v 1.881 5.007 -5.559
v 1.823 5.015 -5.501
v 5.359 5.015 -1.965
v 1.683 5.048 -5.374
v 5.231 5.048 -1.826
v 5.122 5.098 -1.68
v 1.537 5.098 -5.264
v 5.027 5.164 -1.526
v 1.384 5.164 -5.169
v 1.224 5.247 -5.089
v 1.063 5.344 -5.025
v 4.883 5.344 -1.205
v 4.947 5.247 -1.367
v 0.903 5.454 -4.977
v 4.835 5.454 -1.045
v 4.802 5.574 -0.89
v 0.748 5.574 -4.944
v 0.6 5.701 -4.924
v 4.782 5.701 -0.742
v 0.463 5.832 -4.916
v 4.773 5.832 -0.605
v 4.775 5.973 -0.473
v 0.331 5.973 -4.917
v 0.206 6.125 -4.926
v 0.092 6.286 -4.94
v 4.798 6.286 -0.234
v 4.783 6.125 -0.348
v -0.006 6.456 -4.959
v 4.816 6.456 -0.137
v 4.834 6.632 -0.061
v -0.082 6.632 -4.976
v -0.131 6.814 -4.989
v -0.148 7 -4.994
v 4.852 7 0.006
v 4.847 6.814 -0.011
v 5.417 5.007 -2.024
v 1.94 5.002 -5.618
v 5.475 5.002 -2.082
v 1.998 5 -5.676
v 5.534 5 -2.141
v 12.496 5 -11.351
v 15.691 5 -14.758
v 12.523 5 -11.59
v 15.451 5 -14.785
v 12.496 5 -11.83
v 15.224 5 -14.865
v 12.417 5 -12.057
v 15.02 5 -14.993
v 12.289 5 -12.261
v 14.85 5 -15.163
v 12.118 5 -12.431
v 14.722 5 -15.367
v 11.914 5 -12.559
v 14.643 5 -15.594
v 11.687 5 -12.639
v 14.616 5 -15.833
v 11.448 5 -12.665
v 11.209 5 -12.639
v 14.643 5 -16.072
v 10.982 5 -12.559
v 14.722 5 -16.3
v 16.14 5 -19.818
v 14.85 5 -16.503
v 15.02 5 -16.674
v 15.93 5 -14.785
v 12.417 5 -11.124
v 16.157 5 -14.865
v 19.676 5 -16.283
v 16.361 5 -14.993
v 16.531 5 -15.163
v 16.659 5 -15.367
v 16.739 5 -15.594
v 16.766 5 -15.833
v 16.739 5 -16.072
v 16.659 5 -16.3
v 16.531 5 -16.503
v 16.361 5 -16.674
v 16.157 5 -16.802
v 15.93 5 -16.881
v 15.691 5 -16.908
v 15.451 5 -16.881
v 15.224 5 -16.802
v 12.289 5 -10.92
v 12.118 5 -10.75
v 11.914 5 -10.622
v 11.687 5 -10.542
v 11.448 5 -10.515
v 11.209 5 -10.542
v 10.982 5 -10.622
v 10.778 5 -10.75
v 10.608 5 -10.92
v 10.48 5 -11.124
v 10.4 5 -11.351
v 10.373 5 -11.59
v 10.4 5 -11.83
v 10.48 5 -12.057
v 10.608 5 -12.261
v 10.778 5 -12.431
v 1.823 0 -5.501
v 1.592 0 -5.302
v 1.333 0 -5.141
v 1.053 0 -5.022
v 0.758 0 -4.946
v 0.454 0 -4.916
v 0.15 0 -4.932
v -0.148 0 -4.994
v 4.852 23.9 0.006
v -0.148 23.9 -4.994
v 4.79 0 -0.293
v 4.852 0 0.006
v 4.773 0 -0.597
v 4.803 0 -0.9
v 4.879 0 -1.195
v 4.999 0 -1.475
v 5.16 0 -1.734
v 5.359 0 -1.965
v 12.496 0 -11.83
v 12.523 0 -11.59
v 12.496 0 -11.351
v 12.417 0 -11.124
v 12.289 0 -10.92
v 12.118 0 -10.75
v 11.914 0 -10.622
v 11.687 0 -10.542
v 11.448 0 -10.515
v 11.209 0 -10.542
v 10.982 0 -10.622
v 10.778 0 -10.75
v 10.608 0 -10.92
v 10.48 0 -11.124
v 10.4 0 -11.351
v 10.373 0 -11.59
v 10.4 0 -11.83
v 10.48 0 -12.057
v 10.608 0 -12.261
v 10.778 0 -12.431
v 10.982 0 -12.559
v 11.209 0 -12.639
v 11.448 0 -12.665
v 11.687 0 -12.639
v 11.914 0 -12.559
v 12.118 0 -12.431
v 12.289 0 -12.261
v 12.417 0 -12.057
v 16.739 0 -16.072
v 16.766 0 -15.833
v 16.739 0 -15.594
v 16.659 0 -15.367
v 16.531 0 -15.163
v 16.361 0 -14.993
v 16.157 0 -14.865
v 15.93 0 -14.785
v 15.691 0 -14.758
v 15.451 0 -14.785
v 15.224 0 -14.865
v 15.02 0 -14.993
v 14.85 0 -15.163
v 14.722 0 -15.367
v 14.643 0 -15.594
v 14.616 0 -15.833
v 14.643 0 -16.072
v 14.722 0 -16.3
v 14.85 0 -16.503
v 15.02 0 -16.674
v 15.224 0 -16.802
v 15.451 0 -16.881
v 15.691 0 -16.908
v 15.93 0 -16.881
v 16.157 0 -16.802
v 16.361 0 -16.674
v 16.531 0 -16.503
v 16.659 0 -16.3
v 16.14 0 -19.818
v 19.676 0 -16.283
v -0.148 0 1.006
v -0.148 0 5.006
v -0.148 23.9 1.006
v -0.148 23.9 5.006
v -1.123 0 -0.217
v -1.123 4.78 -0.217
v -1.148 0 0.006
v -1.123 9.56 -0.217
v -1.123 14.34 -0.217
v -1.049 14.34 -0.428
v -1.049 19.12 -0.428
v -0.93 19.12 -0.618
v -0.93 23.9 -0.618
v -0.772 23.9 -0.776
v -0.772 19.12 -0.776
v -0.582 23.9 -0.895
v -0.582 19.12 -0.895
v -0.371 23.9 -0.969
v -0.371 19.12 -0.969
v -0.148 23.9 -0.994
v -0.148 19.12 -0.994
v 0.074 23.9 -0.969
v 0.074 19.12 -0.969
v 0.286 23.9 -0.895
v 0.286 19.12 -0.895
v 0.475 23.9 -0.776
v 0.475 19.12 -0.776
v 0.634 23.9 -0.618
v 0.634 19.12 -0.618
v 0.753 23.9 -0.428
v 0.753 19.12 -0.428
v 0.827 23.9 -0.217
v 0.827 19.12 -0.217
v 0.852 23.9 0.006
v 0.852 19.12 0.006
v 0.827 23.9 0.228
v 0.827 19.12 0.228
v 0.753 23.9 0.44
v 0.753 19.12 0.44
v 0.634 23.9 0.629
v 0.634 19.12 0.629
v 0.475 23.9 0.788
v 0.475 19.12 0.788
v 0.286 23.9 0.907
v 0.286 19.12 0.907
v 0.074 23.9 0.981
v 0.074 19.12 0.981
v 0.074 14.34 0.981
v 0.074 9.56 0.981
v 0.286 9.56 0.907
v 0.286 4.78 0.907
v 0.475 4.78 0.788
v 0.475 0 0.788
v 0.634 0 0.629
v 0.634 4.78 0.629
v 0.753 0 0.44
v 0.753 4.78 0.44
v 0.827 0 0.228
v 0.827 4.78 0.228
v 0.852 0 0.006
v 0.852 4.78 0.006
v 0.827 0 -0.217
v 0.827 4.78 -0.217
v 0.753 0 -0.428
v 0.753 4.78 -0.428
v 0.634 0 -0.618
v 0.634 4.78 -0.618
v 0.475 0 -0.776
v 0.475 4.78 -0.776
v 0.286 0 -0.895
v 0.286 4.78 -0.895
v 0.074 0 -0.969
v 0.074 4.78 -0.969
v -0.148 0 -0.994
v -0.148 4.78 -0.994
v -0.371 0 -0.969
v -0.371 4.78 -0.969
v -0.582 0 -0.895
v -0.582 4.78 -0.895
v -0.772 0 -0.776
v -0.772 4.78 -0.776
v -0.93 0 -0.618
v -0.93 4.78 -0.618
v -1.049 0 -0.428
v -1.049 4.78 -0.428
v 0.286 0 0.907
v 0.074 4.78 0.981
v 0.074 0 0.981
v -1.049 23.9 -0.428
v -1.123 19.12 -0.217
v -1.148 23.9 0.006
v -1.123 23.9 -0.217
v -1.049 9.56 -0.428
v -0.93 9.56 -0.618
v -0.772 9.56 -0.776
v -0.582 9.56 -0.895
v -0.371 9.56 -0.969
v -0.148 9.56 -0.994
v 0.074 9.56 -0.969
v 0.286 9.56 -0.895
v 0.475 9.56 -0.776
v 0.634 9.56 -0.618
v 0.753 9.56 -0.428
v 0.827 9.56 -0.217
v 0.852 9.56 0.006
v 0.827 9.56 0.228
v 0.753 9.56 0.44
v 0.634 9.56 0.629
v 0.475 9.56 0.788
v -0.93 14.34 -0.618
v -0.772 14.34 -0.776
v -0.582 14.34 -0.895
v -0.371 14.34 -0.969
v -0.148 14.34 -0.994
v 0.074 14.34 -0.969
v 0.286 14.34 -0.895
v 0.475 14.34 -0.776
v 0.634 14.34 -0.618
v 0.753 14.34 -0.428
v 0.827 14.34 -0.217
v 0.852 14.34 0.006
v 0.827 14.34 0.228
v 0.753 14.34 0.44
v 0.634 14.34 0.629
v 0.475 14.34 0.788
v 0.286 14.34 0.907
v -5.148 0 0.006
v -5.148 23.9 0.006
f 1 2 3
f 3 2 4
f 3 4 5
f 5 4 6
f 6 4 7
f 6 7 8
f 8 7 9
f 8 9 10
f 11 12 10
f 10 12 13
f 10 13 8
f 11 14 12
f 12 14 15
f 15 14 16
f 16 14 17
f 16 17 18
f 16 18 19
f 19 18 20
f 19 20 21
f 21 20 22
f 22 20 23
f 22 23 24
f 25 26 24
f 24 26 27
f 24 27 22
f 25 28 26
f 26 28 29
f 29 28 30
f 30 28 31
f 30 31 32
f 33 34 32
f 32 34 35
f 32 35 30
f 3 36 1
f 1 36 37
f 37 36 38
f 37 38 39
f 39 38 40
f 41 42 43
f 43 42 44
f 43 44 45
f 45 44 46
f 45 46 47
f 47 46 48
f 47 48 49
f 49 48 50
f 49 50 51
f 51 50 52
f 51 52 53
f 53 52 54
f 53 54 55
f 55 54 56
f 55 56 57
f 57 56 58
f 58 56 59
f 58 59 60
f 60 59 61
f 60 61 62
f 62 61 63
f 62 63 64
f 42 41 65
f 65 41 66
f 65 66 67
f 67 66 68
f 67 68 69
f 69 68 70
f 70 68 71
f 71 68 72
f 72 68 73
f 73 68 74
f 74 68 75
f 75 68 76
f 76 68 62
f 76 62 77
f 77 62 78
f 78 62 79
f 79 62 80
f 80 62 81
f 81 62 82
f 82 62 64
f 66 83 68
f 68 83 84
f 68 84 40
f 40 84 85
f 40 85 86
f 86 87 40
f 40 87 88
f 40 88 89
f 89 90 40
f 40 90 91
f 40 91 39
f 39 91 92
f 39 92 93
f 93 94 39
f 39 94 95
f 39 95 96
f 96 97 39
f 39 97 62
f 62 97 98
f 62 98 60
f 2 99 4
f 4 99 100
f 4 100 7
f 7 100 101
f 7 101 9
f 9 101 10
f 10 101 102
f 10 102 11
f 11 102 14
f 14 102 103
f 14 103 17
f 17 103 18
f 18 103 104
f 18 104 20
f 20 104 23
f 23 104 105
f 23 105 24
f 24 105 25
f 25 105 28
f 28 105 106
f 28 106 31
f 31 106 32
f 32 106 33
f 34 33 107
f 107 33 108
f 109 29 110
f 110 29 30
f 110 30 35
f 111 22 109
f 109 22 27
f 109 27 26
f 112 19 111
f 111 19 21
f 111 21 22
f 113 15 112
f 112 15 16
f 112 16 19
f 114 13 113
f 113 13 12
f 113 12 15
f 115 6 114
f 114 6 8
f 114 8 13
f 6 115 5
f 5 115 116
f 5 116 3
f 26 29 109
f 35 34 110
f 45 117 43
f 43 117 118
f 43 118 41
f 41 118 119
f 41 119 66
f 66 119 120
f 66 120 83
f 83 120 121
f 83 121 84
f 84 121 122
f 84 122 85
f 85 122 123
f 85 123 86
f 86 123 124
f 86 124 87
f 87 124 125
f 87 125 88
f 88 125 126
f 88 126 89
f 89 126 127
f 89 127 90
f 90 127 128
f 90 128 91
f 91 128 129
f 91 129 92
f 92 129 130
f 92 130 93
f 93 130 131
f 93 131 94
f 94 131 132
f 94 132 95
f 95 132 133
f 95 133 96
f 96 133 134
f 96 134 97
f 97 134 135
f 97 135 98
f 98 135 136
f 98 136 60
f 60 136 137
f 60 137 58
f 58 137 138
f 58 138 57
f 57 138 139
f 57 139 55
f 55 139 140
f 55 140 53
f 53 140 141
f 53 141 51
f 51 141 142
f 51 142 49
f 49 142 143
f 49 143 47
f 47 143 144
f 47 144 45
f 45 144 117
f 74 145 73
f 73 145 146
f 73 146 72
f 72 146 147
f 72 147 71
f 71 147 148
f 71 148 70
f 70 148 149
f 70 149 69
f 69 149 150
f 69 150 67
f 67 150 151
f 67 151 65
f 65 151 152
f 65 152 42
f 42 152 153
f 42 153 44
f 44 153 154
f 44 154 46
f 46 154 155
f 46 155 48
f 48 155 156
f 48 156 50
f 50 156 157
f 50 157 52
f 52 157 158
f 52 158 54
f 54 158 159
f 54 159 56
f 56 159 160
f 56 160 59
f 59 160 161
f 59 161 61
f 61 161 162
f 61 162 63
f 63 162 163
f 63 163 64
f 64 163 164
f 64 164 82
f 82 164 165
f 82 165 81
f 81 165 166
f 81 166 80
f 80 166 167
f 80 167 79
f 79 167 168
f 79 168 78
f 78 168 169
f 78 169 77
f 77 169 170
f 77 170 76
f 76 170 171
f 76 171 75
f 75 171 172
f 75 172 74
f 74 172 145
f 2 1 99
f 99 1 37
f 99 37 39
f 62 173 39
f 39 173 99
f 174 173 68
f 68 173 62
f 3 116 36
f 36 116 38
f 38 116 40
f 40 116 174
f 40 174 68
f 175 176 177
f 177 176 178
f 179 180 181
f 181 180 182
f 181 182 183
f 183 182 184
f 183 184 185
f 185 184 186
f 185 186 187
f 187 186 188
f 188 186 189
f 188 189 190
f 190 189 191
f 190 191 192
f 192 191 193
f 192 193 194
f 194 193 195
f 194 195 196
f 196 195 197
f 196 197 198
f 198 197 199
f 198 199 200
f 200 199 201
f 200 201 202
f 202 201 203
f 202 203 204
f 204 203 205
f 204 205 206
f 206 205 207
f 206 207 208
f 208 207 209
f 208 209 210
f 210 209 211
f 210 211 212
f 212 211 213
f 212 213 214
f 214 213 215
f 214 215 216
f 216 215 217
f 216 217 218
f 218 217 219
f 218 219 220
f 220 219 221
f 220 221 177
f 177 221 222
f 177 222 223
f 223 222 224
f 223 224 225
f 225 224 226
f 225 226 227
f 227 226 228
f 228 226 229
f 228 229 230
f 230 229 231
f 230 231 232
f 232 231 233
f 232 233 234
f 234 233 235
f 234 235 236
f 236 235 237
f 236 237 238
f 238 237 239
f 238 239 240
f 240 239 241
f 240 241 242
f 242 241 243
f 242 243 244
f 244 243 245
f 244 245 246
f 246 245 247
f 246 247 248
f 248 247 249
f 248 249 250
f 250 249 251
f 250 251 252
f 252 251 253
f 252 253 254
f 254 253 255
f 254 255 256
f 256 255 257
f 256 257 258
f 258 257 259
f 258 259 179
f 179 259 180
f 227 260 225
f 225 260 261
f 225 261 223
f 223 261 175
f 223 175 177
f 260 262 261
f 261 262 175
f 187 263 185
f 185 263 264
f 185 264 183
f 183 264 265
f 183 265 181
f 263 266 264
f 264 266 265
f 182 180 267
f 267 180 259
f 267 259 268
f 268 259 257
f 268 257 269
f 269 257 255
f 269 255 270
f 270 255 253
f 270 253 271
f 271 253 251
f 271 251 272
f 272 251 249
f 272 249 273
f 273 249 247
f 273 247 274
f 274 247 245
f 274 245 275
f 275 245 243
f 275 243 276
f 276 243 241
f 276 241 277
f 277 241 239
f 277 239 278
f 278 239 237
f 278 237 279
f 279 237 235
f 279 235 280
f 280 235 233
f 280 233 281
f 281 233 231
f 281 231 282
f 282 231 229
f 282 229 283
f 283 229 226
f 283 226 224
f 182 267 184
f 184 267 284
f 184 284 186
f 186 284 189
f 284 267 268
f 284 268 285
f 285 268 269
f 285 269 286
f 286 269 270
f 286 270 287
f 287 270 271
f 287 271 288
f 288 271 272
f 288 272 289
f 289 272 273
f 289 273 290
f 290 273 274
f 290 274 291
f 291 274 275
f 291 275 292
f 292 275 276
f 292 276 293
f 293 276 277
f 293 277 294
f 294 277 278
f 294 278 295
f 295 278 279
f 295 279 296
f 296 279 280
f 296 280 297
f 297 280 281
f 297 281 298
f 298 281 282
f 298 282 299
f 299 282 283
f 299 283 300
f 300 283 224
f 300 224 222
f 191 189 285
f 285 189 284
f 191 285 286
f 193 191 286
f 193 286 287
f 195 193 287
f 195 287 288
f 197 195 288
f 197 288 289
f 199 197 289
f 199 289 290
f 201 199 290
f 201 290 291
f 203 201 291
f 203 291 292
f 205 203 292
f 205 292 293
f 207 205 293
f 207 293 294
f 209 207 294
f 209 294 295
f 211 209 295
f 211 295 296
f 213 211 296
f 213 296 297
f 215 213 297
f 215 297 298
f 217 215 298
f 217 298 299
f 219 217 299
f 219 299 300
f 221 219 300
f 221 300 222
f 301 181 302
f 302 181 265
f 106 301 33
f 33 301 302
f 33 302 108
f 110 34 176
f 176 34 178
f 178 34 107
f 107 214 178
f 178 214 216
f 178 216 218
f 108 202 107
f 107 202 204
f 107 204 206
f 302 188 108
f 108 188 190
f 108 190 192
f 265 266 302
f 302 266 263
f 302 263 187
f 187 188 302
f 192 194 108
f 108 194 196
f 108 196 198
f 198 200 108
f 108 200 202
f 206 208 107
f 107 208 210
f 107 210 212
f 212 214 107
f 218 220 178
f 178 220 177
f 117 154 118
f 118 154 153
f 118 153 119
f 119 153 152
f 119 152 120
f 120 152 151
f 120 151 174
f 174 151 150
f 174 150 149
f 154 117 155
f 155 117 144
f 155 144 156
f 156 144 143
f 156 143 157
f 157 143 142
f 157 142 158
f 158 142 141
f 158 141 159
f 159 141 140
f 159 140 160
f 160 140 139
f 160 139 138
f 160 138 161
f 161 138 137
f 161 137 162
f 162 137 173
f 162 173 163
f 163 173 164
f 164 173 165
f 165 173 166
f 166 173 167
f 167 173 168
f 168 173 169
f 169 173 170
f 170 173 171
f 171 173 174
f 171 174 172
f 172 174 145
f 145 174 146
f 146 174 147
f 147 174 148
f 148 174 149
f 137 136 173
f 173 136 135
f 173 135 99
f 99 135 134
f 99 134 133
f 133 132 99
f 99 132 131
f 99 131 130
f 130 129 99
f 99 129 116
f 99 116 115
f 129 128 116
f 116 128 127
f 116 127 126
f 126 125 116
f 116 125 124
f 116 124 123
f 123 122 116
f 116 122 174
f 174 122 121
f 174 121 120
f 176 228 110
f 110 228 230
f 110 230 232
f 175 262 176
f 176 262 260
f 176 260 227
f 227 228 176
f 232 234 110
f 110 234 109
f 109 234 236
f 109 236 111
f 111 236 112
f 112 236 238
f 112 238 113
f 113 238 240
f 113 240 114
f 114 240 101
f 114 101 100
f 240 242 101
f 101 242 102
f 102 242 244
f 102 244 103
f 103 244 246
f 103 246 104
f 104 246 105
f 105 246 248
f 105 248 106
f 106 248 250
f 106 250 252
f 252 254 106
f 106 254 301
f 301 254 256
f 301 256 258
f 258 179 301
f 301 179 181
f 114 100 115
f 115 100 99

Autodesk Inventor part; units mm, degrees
ref_plane "YZ Plane" through (0, 0, 0) normal (1, 0, 0) x (0, 1, 0)
ref_plane "XZ Plane" through (0, 0, 0) normal (0, 1, 0) x (-1, 0, 0)
ref_plane "XY Plane" through (0, 0, 0) normal (0, 0, 1) x (1, 0, 0)
sketch "Sketch1" plane through (0, 0, 0) normal (0, 1, 0) x (-1, 0, 0)
  arc A0 (-0.158902, 2.527129) -> (-1.647898, 1.801809) centre (0.148153, 0.005757) ccw
  arc A1 (-0.158902, 2.527129) -> (-1.647898, 1.801809) centre (0.148153, 0.005757) ccw
  arc A2 (1.944204, -1.790294) -> (2.669525, -0.301298) centre (0.148153, 0.005757) ccw
  arc A3 (1.944204, -1.790294) -> (2.669525, -0.301298) centre (0.148153, 0.005757) ccw
  arc A4 (0.148153, 2.545757) -> (-1.647898, 1.801809) centre (0.148153, 0.005757) ccw
  line L0 (0.148153, 5.005757) -> (0.148153, 2.545757)
  line L1 (0.148153, 0.005757) -> (2.688153, 0.005757)
  line L2 (-1.647898, 1.801809) -> (-4.147898, -0.698191)
  arc A5 (1.944204, -1.790294) -> (2.688153, 0.005757) centre (0.148153, 0.005757) ccw
  line L3 (-4.147898, -0.698191) -> (-4.851847, 0.005757)
  arc A6 (0.148153, 2.545757) -> (-1.647898, 1.801809) centre (0.148153, 0.005757) ccw
  arc A7 (0.148153, 2.545757) -> (-1.647898, 1.801809) centre (0.148153, 0.005757) ccw
  arc A8 (-0.158902, 2.527129) -> (-1.647898, 1.801809) centre (0.148153, 0.005757) ccw
  arc A9 (-0.158902, 2.527129) -> (-1.647898, 1.801809) centre (0.148153, 0.005757) ccw
  line L4 (-4.851847, 0.005757) -> (0.148153, 5.005757)
  line L5 (-4.851847, 0.005757) -> (0.148153, 5.005757)
  line L6 (0.148153, 5.005757) -> (0.148153, 2.545757)
  arc A10 (0.148153, 2.545757) -> (-1.647898, 1.801809) centre (0.148153, 0.005757) ccw
  line L7 (-1.647898, 1.801809) -> (-4.147898, -0.698191)
  line L8 (-4.147898, -0.698191) -> (-4.851847, 0.005757)
  arc A11 (1.944204, -1.790294) -> (2.688153, 0.005757) centre (0.148153, 0.005757) ccw
  arc A12 (1.944204, -1.790294) -> (2.669525, -0.301298) centre (0.148153, 0.005757) ccw
  arc A13 (1.944204, -1.790294) -> (2.669525, -0.301298) centre (0.148153, 0.005757) ccw
  arc A14 (1.944204, -1.790294) -> (2.688153, 0.005757) centre (0.148153, 0.005757) ccw
  line L9 (-4.147898, -0.698191) -> (-0.555796, -4.290294)
  line L10 (0.148153, 1.005757) -> (0.148153, 0.005757)
  line L11 (0.148153, 1.005757) -> (0.148153, 0.005757)
  line L12 (0.148153, 2.545757) -> (0.148153, 0.005757)
  line L13 (0.148153, 5.005757) -> (0.148153, 2.545757)
  line L14 (0.148153, 5.005757) -> (0.148153, 1.005757)
  line L15 (0.148153, 0.005757) -> (1.148153, 0.005757)
  line L16 (1.148153, 0.005757) -> (5.148153, 0.005757)
  line L17 (2.688153, 0.005757) -> (5.148153, 0.005757)
  line L18 (0.148153, 0.005757) -> (2.688153, 0.005757)
  line L19 (5.148153, 0.005757) -> (0.148153, -4.994243)
  line L20 (0.148153, -4.994243) -> (5.148153, 0.005757)
  line L21 (-4.147898, -0.698191) -> (-4.851847, 0.005757)
  line L22 (-4.147898, -0.698191) -> (-0.555796, -4.290294)
  line L23 (0.148153, -4.994243) -> (-0.555796, -4.290294)
  line L24 (-4.851847, 0.005757) -> (0.148153, -4.994243)
  line L25 (-4.851847, 0.005757) -> (0.148153, -4.994243)
  line L26 (0.148153, 5.005757) -> (-4.851847, 0.005757)
  line L27 (-4.851847, 0.005757) -> (0.148153, 5.005757)
  line L28 (0.148153, 5.005757) -> (-4.851847, 0.005757)
  line L29 (0.148153, -4.994243) -> (-0.555796, -4.290294)
  arc A15 (1.944204, -1.790294) -> (2.688153, 0.005757) centre (0.148153, 0.005757) ccw
  line L30 (-0.555796, -4.290294) -> (1.944204, -1.790294)
  line L31 (2.688153, 0.005757) -> (5.148153, 0.005757)
  line L32 (5.148153, 0.005757) -> (0.148153, -4.994243)
  line L33 (0.148153, -4.994243) -> (-0.555796, -4.290294)
  line L34 (-0.555796, -4.290294) -> (1.944204, -1.790294)
  arc A16 (1.944204, -1.790294) -> (2.688153, 0.005757) centre (0.148153, 0.005757) ccw
  line L35 (2.688153, 0.005757) -> (5.148153, 0.005757)
  line L36 (5.148153, 0.005757) -> (0.148153, -4.994243)
  arc A17 (0.148153, 2.545757) -> (-1.647898, 1.801809) centre (0.148153, 0.005757) ccw
  circle A18 centre (-2.355005, -2.497401) radius 1.5
  circle A19 centre (-2.355005, -2.497401) radius 1.5
  circle A20 centre (-2.355005, -2.497401) radius 1.5
  circle A21 centre (-2.355005, -2.497401) radius 1.5
  circle A22 centre (-2.355005, -2.497401) radius 1.5
  line L37 (0.148153, 5.005757) -> (0.148153, 1.005757)
  arc A23 (0.148153, 1.005757) -> (1.148153, 0.005757) centre (0.148153, 0.005757) ccw
  line L38 (0.148153, -4.994243) -> (5.148153, 0.005757)
  line L39 (1.148153, 0.005757) -> (5.148153, 0.005757)
  line L40 (0.148153, 0.005757) -> (1.148153, 0.005757)
  arc A24 (0.148153, 1.005757) -> (1.148153, 0.005757) centre (0.148153, 0.005757) ccw
  line L41 (0.148153, 0.005757) -> (1.148153, 0.005757)
  line L42 (0.148153, 1.005757) -> (0.148153, 0.005757)
  arc A25 (0.148153, 1.005757) -> (1.148153, 0.005757) centre (0.148153, 0.005757) ccw
  arc A26 (0.148153, 1.005757) -> (1.148153, 0.005757) centre (0.148153, 0.005757) ccw
  arc A27 (0.148153, 1.005757) -> (1.148153, 0.005757) centre (0.148153, 0.005757) ccw
  line L43 (0.148153, 5.005757) -> (-4.851847, 0.005757)
  line L44 (-4.851847, 0.005757) -> (0.148153, -4.994243)
  line L45 (0.148153, -4.994243) -> (5.148153, 0.005757)
  line L46 (1.148153, 0.005757) -> (5.148153, 0.005757)
  arc A28 (0.148153, 1.005757) -> (1.148153, 0.005757) centre (0.148153, 0.005757) ccw
  line L47 (0.148153, 5.005757) -> (0.148153, 1.005757)
  line L48 (0.148153, 2.545757) -> (0.148153, 0.005757)
  arc A29 (-1.647898, 1.801809) -> (1.944204, -1.790294) centre (0.148153, 0.005757) ccw
  circle A30 centre (0.148153, 0.005757) radius 2.54
  line L49 (0.148153, -3.586345) -> (-3.443949, 0.005757)
  line L50 (-1.647898, -1.790294) -> (-2.355005, -2.497401)
  circle A31 centre (-2.355005, -2.497401) radius 2.54
  point P0 (0, 0)
  point P1 (1.148153, 0.005757)
extrude "Extrusion1" add sketch "Sketch1" along normal blind 23.9 contours A4 L12 A23 A31 A29 A0 | A0 L2 L3 L4 L0 A4 | A29 A31 L49 L2 | L49 A31 L2 | A31 A29 A18 | A29 A18 L49 A31 | A5 A2 A29 A31 A23 L1 | L16 L19 L23 L30 A2 A5 | A31 L49 A18 L9 | A29 L49 A18 | A18 A29 | A18 L49 L50 L9 | A31 L49 L30 | L9 A18 L49 A31 | A29 A31 L49 A18 | A18 L49 A29 | L49 A18 L9 L50 | L30 L49 A31 A29
sketch "Sketch2" plane through (0, 0, 0) normal (0, -1, 0) x (1, 0, 0)
  line L0 (4.851847, 0.005757) -> (-0.148153, -4.994243)
  line L1 (2.351847, -2.494243) -> (17.908196, -18.050592)
  circle A0 centre (11.448069, -11.590464) radius 1.075
  circle A1 centre (15.690709, -15.833105) radius 1.075
  line L2 (-0.148153, 1.005757) -> (-0.148153, 5.005757)
  line L3 (-0.148153, 5.005757) -> (4.851847, 0.005757)
  line L4 (-0.148153, 5.005757) -> (4.851847, 0.005757)
  line L5 (-0.148153, -4.994243) -> (-5.148153, 0.005757)
  line L6 (-5.148153, 0.005757) -> (-0.148153, -4.994243)
  line L7 (2.351847, -2.494243) -> (4.119614, -0.726476)
  line L8 (4.119614, -0.726476) -> (0.58408, -4.26201)
  line L9 (0.58408, -4.26201) -> (16.044263, -19.722192)
  line L10 (4.119614, -0.726476) -> (19.579797, -16.186658)
  line L11 (17.908196, -18.050592) -> (17.81203, -18.146758)
  line L12 (17.81203, -18.146758) -> (16.140429, -19.818359)
  line L13 (16.140429, -19.818359) -> (16.044263, -19.722192)
  line L14 (17.908196, -18.050592) -> (19.675963, -16.282825)
  line L15 (19.675963, -16.282825) -> (19.579797, -16.186658)
  point P0 (0, 0)
  dimension "d2" = 22
  dimension "d5" = 2.15
  dimension "d6" = 2.15
  dimension "d7" = 2.5
  dimension "d8" = 5
extrude "Extrusion2" add sketch "Sketch2" against normal blind 5 contours L10 L15 L14 L1 A1 A0 L0 | L1 A0 A1 L11 L12 L13 L9 L0
fillet "Fillet1" radius 2 2 edges at (4.1196, 2.5, -0.7265) (0.5841, 2.5, -4.262)
fillet "Fillet2" radius 2 1 edges at (2.3518, 5, -2.4942)
sketch "Sketch3" plane through (0, 5, 0) normal (0, 1, 0) x (1, 0, 0)
  circle A0 centre (11.448069, 11.590464) radius 1.075
  circle A1 centre (15.690709, 15.833105) radius 1.075
  point P0 (0, 0)
properties part number "ALUMFINGER_3DPrint"
